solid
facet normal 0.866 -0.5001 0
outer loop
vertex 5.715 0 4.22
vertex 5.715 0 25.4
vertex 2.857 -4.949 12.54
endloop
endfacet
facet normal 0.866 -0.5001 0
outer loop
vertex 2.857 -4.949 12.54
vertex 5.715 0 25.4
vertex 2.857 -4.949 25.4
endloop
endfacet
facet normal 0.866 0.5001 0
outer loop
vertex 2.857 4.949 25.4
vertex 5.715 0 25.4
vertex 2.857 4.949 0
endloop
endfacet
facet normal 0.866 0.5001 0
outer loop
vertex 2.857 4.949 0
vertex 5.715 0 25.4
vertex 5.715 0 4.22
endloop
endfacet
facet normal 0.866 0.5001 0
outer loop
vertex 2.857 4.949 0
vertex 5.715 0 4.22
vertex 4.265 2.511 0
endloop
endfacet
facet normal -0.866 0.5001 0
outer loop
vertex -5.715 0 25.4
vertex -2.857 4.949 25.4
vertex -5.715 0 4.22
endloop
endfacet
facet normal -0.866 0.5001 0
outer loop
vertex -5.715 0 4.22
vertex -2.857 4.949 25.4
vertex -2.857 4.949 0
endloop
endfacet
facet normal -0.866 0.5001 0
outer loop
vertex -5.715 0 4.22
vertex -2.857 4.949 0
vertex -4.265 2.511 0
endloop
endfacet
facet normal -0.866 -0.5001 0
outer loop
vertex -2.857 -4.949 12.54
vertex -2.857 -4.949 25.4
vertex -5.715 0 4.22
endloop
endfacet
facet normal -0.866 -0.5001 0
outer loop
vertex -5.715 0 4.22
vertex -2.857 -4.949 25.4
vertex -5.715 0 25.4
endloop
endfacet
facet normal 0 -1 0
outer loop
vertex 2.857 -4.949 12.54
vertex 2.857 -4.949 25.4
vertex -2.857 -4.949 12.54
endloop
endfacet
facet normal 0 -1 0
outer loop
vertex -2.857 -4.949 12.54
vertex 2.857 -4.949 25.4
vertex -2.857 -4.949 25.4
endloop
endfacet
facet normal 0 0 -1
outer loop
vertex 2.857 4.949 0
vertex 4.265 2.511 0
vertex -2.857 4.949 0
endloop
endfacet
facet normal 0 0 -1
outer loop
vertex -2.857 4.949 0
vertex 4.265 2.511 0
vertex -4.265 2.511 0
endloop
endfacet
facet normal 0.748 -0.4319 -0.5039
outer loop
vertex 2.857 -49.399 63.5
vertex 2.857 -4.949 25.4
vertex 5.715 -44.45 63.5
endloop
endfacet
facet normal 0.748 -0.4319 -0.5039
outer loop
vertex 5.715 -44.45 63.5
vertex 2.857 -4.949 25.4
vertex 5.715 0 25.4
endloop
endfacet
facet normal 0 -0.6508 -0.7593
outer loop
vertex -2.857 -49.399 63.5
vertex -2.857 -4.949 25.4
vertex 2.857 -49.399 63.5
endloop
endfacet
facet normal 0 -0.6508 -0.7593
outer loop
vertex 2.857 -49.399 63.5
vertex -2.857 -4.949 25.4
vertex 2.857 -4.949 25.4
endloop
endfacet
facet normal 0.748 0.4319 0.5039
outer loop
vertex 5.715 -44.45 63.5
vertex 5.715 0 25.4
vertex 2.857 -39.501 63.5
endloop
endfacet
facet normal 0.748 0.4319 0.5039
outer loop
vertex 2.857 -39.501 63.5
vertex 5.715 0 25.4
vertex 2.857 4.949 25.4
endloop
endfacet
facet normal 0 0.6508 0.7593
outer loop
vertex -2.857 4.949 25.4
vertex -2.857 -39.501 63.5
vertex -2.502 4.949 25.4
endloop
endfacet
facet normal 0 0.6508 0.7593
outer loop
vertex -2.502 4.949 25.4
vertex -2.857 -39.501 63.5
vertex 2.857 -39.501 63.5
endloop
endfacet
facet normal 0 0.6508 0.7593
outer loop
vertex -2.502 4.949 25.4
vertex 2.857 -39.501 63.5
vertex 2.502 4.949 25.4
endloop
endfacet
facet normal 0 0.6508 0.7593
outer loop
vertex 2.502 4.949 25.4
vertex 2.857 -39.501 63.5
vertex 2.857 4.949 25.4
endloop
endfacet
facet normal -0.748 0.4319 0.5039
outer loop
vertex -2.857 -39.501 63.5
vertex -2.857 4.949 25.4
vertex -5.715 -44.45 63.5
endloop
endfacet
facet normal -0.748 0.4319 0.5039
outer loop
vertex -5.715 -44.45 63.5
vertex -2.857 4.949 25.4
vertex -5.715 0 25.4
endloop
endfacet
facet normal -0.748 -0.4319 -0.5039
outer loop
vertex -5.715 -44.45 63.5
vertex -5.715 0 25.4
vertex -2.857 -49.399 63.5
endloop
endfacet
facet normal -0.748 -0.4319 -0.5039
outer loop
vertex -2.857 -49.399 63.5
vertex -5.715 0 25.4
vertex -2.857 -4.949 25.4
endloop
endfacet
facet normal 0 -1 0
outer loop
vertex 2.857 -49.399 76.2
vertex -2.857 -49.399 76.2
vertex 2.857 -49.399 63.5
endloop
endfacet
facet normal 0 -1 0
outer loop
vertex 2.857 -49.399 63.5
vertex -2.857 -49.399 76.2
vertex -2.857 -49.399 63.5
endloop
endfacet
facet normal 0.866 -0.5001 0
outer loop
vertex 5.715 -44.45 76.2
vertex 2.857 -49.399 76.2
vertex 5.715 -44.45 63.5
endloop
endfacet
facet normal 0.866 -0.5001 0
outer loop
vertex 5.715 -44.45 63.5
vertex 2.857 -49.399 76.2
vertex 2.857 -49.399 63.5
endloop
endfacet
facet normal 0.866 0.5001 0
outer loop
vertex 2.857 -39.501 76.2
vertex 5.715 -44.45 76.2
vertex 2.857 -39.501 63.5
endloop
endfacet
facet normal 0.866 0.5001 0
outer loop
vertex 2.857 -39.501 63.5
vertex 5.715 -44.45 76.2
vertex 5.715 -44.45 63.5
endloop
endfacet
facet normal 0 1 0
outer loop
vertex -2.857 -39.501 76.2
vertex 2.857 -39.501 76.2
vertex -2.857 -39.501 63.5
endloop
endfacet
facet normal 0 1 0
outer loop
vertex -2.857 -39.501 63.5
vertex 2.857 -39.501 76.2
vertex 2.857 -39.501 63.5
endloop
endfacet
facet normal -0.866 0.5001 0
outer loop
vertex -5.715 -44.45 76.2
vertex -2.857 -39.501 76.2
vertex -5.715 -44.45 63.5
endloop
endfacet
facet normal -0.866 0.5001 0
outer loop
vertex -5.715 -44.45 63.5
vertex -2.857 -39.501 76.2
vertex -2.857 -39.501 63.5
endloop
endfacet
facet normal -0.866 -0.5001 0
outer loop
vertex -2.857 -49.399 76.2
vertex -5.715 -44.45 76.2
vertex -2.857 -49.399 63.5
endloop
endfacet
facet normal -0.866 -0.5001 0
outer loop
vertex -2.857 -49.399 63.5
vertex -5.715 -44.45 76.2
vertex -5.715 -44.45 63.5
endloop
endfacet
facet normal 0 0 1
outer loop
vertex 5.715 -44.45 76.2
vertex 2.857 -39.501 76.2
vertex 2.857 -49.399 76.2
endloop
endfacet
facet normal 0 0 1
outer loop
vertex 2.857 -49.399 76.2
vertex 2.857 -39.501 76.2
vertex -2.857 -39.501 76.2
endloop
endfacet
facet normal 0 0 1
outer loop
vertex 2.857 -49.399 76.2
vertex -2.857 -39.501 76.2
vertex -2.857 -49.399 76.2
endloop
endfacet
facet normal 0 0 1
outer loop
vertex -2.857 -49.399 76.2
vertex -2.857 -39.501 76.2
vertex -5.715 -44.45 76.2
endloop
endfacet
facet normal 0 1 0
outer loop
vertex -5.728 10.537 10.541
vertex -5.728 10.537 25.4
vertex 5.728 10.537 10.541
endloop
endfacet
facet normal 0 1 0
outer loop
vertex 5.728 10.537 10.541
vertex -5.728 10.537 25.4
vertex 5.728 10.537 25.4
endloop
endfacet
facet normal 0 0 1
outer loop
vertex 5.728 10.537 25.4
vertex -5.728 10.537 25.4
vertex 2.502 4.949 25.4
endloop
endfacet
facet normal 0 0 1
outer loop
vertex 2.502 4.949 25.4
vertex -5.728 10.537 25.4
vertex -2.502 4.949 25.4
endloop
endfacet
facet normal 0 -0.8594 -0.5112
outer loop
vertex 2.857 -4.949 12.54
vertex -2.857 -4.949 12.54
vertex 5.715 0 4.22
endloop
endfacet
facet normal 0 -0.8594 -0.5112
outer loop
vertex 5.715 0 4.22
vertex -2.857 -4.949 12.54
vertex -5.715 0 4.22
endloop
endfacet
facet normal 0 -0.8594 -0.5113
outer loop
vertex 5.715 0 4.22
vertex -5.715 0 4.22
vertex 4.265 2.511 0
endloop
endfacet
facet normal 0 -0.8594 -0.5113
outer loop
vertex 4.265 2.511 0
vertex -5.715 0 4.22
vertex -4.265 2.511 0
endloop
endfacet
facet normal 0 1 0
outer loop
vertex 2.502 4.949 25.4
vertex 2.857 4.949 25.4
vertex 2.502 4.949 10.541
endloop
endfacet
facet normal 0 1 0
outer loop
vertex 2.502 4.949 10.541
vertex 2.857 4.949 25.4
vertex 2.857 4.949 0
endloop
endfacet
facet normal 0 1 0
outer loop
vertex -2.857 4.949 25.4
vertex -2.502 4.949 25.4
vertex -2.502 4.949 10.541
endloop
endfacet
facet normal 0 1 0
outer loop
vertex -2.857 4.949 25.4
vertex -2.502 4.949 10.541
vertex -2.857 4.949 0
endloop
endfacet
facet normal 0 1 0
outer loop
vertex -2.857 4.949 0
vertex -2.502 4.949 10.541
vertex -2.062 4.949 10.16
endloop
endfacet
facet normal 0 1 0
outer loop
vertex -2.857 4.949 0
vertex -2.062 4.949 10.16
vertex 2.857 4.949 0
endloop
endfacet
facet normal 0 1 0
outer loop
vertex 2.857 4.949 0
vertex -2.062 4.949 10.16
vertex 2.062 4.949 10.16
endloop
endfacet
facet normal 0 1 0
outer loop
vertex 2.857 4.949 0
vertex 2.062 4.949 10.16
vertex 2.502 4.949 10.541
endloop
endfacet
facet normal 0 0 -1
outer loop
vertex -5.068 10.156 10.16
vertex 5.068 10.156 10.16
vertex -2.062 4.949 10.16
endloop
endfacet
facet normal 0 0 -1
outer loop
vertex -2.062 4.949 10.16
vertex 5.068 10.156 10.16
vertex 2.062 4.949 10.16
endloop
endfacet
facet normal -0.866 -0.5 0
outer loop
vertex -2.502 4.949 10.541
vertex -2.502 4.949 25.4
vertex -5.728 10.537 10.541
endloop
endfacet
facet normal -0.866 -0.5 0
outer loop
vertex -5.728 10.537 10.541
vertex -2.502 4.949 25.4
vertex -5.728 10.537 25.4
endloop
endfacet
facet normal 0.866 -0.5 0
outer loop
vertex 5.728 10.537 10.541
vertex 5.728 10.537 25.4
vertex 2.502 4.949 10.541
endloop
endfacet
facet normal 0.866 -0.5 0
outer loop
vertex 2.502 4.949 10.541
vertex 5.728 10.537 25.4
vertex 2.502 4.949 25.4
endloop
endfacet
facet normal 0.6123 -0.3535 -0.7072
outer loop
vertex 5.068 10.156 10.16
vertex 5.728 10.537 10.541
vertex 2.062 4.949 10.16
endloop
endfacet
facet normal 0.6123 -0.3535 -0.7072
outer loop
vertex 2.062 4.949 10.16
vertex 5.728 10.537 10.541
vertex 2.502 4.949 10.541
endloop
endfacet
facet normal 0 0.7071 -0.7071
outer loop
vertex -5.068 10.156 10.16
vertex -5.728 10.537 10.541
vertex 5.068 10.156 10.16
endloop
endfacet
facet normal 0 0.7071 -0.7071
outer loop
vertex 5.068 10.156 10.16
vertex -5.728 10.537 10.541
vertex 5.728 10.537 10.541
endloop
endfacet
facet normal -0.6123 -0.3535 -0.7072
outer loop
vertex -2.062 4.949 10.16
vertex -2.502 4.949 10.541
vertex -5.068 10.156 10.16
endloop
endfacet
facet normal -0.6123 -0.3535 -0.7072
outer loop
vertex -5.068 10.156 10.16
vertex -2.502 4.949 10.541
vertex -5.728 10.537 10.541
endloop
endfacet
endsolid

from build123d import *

# Parameters (mm, degrees)
BOSS_EXTRUDE1_DEPTH = 25.4
BOSS_EXTRUDE2_DEPTH = 12.7
BOSS_EXTRUDE3_DEPTH = 25.4
CHAMFER1_SIZE       = 7.46
CHAMFER1_SIZE2      = 12.54
CUT_EXTRUDE1_DEPTH  = 10.16
CUT_EXTRUDE3_DEPTH  = 83.695754046
CHAMFER7_SIZE       = 0.381


with BuildPart() as part:
    # Sketch1 → Boss-Extrude1 (new body)
    with BuildSketch(Plane.XY):
        Polygon((5.715, 0), (2.8575, 4.949335183), (-2.8575, 4.949335183), (-5.715, 0), (-2.8575, -4.949335183), (2.8575, -4.949335183), align=None)
    extrude(amount=BOSS_EXTRUDE1_DEPTH)



with BuildPart() as body_2:
    # Sketch2 → Boss-Extrude2 (new body)
    with BuildSketch(Plane.XY.offset(63.5)):
        Polygon((-2.8575, -49.399335183), (2.8575, -49.399335183), (5.715, -44.45), (2.8575, -39.500664817), (-2.8575, -39.500664817), (-5.715, -44.45), align=None)
    extrude(amount=BOSS_EXTRUDE2_DEPTH)


with BuildPart() as part_1:
    add(part.part)

    add(body_2.part)  # loft1 joins it to this body
    # loft from a face of the part (loft1)
    loft([part_1.faces().sort_by_distance((0, 0, 25.4))[0], part_1.faces().sort_by_distance((0, -44.45, 63.5))[0]])

    # Sketch4 → Boss-Extrude3 (add)
    with BuildSketch(Plane(origin=(0, 0, 0), x_dir=(-1, 0, 0), z_dir=(0, 0, -1))):
        Polygon((2.8575, 4.949335183), (6.083733304, 10.537335183), (-6.083733304, 10.537335183), (-2.8575, 4.949335183), align=None)
    extrude(amount=-BOSS_EXTRUDE3_DEPTH)

    # Chamfer1
    chamfer1_edges = [part_1.edges().sort_by_distance(p)[0] for p in [
        (0, -4.949335183, 0),
    ]]
    chamfer1_side = [part_1.faces().sort_by_distance(p)[0] for p in [
        (0, 2.994180076, 0),
    ]]
    chamfer(chamfer1_edges, length=CHAMFER1_SIZE, length2=CHAMFER1_SIZE2, reference=chamfer1_side[0])

    # Sketch8 → Cut-Extrude1 (cut)
    with BuildSketch(Plane(origin=(0, 0, 0), x_dir=(-1, 0, 0), z_dir=(0, 0, -1))):
        Polygon((-6.083733304, 10.537335183), (6.083733304, 10.537335183), (2.8575, 4.949335183), (-2.8575, 4.949335183), align=None)
    extrude(amount=-CUT_EXTRUDE1_DEPTH, mode=Mode.SUBTRACT)

    # Sketch9 → Cut-Extrude3 (cut, through all)
    with BuildSketch(Plane(origin=(0, 0, 10.16), x_dir=(-1, 0, 0), z_dir=(0, 0, -1))):
        Polygon((5.728133304, 10.537335183), (2.5019, 4.949335183), (2.8575, 4.949335183), (6.083733304, 10.537335183), align=None)
        Polygon((-2.5019, 4.949335183), (-5.728133304, 10.537335183), (-6.083733304, 10.537335183), (-2.8575, 4.949335183), align=None)
    extrude(amount=-CUT_EXTRUDE3_DEPTH, mode=Mode.SUBTRACT)

    # Chamfer7
    chamfer7_edges = [part_1.edges().sort_by_distance(p)[0] for p in [
        (4.115016652, 7.743335183, 10.16),
        (-4.115016652, 7.743335183, 10.16),
        (0, 10.537335183, 10.16),
    ]]
    chamfer(chamfer7_edges, length=CHAMFER7_SIZE)


solid = part_1.part
